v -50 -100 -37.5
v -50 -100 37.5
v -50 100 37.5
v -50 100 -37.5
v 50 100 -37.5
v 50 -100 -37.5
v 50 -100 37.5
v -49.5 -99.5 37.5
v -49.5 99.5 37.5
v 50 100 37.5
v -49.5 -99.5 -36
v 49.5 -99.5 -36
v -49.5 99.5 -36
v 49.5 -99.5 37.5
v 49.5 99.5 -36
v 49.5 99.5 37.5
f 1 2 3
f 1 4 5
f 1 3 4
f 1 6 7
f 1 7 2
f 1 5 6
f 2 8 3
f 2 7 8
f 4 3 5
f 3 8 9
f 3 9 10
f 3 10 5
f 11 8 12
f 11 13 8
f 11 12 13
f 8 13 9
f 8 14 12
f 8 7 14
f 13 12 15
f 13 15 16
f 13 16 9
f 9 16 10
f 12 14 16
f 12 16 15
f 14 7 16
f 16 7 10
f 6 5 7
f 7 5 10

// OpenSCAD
w=  100; //mm
l = 200;
h=  75; //mm

m = 1;

difference()
{
    cube([w, l, h], center = true);
    translate([0,0,m]) cube([w- m, l - m, h - m], center=true);
}
